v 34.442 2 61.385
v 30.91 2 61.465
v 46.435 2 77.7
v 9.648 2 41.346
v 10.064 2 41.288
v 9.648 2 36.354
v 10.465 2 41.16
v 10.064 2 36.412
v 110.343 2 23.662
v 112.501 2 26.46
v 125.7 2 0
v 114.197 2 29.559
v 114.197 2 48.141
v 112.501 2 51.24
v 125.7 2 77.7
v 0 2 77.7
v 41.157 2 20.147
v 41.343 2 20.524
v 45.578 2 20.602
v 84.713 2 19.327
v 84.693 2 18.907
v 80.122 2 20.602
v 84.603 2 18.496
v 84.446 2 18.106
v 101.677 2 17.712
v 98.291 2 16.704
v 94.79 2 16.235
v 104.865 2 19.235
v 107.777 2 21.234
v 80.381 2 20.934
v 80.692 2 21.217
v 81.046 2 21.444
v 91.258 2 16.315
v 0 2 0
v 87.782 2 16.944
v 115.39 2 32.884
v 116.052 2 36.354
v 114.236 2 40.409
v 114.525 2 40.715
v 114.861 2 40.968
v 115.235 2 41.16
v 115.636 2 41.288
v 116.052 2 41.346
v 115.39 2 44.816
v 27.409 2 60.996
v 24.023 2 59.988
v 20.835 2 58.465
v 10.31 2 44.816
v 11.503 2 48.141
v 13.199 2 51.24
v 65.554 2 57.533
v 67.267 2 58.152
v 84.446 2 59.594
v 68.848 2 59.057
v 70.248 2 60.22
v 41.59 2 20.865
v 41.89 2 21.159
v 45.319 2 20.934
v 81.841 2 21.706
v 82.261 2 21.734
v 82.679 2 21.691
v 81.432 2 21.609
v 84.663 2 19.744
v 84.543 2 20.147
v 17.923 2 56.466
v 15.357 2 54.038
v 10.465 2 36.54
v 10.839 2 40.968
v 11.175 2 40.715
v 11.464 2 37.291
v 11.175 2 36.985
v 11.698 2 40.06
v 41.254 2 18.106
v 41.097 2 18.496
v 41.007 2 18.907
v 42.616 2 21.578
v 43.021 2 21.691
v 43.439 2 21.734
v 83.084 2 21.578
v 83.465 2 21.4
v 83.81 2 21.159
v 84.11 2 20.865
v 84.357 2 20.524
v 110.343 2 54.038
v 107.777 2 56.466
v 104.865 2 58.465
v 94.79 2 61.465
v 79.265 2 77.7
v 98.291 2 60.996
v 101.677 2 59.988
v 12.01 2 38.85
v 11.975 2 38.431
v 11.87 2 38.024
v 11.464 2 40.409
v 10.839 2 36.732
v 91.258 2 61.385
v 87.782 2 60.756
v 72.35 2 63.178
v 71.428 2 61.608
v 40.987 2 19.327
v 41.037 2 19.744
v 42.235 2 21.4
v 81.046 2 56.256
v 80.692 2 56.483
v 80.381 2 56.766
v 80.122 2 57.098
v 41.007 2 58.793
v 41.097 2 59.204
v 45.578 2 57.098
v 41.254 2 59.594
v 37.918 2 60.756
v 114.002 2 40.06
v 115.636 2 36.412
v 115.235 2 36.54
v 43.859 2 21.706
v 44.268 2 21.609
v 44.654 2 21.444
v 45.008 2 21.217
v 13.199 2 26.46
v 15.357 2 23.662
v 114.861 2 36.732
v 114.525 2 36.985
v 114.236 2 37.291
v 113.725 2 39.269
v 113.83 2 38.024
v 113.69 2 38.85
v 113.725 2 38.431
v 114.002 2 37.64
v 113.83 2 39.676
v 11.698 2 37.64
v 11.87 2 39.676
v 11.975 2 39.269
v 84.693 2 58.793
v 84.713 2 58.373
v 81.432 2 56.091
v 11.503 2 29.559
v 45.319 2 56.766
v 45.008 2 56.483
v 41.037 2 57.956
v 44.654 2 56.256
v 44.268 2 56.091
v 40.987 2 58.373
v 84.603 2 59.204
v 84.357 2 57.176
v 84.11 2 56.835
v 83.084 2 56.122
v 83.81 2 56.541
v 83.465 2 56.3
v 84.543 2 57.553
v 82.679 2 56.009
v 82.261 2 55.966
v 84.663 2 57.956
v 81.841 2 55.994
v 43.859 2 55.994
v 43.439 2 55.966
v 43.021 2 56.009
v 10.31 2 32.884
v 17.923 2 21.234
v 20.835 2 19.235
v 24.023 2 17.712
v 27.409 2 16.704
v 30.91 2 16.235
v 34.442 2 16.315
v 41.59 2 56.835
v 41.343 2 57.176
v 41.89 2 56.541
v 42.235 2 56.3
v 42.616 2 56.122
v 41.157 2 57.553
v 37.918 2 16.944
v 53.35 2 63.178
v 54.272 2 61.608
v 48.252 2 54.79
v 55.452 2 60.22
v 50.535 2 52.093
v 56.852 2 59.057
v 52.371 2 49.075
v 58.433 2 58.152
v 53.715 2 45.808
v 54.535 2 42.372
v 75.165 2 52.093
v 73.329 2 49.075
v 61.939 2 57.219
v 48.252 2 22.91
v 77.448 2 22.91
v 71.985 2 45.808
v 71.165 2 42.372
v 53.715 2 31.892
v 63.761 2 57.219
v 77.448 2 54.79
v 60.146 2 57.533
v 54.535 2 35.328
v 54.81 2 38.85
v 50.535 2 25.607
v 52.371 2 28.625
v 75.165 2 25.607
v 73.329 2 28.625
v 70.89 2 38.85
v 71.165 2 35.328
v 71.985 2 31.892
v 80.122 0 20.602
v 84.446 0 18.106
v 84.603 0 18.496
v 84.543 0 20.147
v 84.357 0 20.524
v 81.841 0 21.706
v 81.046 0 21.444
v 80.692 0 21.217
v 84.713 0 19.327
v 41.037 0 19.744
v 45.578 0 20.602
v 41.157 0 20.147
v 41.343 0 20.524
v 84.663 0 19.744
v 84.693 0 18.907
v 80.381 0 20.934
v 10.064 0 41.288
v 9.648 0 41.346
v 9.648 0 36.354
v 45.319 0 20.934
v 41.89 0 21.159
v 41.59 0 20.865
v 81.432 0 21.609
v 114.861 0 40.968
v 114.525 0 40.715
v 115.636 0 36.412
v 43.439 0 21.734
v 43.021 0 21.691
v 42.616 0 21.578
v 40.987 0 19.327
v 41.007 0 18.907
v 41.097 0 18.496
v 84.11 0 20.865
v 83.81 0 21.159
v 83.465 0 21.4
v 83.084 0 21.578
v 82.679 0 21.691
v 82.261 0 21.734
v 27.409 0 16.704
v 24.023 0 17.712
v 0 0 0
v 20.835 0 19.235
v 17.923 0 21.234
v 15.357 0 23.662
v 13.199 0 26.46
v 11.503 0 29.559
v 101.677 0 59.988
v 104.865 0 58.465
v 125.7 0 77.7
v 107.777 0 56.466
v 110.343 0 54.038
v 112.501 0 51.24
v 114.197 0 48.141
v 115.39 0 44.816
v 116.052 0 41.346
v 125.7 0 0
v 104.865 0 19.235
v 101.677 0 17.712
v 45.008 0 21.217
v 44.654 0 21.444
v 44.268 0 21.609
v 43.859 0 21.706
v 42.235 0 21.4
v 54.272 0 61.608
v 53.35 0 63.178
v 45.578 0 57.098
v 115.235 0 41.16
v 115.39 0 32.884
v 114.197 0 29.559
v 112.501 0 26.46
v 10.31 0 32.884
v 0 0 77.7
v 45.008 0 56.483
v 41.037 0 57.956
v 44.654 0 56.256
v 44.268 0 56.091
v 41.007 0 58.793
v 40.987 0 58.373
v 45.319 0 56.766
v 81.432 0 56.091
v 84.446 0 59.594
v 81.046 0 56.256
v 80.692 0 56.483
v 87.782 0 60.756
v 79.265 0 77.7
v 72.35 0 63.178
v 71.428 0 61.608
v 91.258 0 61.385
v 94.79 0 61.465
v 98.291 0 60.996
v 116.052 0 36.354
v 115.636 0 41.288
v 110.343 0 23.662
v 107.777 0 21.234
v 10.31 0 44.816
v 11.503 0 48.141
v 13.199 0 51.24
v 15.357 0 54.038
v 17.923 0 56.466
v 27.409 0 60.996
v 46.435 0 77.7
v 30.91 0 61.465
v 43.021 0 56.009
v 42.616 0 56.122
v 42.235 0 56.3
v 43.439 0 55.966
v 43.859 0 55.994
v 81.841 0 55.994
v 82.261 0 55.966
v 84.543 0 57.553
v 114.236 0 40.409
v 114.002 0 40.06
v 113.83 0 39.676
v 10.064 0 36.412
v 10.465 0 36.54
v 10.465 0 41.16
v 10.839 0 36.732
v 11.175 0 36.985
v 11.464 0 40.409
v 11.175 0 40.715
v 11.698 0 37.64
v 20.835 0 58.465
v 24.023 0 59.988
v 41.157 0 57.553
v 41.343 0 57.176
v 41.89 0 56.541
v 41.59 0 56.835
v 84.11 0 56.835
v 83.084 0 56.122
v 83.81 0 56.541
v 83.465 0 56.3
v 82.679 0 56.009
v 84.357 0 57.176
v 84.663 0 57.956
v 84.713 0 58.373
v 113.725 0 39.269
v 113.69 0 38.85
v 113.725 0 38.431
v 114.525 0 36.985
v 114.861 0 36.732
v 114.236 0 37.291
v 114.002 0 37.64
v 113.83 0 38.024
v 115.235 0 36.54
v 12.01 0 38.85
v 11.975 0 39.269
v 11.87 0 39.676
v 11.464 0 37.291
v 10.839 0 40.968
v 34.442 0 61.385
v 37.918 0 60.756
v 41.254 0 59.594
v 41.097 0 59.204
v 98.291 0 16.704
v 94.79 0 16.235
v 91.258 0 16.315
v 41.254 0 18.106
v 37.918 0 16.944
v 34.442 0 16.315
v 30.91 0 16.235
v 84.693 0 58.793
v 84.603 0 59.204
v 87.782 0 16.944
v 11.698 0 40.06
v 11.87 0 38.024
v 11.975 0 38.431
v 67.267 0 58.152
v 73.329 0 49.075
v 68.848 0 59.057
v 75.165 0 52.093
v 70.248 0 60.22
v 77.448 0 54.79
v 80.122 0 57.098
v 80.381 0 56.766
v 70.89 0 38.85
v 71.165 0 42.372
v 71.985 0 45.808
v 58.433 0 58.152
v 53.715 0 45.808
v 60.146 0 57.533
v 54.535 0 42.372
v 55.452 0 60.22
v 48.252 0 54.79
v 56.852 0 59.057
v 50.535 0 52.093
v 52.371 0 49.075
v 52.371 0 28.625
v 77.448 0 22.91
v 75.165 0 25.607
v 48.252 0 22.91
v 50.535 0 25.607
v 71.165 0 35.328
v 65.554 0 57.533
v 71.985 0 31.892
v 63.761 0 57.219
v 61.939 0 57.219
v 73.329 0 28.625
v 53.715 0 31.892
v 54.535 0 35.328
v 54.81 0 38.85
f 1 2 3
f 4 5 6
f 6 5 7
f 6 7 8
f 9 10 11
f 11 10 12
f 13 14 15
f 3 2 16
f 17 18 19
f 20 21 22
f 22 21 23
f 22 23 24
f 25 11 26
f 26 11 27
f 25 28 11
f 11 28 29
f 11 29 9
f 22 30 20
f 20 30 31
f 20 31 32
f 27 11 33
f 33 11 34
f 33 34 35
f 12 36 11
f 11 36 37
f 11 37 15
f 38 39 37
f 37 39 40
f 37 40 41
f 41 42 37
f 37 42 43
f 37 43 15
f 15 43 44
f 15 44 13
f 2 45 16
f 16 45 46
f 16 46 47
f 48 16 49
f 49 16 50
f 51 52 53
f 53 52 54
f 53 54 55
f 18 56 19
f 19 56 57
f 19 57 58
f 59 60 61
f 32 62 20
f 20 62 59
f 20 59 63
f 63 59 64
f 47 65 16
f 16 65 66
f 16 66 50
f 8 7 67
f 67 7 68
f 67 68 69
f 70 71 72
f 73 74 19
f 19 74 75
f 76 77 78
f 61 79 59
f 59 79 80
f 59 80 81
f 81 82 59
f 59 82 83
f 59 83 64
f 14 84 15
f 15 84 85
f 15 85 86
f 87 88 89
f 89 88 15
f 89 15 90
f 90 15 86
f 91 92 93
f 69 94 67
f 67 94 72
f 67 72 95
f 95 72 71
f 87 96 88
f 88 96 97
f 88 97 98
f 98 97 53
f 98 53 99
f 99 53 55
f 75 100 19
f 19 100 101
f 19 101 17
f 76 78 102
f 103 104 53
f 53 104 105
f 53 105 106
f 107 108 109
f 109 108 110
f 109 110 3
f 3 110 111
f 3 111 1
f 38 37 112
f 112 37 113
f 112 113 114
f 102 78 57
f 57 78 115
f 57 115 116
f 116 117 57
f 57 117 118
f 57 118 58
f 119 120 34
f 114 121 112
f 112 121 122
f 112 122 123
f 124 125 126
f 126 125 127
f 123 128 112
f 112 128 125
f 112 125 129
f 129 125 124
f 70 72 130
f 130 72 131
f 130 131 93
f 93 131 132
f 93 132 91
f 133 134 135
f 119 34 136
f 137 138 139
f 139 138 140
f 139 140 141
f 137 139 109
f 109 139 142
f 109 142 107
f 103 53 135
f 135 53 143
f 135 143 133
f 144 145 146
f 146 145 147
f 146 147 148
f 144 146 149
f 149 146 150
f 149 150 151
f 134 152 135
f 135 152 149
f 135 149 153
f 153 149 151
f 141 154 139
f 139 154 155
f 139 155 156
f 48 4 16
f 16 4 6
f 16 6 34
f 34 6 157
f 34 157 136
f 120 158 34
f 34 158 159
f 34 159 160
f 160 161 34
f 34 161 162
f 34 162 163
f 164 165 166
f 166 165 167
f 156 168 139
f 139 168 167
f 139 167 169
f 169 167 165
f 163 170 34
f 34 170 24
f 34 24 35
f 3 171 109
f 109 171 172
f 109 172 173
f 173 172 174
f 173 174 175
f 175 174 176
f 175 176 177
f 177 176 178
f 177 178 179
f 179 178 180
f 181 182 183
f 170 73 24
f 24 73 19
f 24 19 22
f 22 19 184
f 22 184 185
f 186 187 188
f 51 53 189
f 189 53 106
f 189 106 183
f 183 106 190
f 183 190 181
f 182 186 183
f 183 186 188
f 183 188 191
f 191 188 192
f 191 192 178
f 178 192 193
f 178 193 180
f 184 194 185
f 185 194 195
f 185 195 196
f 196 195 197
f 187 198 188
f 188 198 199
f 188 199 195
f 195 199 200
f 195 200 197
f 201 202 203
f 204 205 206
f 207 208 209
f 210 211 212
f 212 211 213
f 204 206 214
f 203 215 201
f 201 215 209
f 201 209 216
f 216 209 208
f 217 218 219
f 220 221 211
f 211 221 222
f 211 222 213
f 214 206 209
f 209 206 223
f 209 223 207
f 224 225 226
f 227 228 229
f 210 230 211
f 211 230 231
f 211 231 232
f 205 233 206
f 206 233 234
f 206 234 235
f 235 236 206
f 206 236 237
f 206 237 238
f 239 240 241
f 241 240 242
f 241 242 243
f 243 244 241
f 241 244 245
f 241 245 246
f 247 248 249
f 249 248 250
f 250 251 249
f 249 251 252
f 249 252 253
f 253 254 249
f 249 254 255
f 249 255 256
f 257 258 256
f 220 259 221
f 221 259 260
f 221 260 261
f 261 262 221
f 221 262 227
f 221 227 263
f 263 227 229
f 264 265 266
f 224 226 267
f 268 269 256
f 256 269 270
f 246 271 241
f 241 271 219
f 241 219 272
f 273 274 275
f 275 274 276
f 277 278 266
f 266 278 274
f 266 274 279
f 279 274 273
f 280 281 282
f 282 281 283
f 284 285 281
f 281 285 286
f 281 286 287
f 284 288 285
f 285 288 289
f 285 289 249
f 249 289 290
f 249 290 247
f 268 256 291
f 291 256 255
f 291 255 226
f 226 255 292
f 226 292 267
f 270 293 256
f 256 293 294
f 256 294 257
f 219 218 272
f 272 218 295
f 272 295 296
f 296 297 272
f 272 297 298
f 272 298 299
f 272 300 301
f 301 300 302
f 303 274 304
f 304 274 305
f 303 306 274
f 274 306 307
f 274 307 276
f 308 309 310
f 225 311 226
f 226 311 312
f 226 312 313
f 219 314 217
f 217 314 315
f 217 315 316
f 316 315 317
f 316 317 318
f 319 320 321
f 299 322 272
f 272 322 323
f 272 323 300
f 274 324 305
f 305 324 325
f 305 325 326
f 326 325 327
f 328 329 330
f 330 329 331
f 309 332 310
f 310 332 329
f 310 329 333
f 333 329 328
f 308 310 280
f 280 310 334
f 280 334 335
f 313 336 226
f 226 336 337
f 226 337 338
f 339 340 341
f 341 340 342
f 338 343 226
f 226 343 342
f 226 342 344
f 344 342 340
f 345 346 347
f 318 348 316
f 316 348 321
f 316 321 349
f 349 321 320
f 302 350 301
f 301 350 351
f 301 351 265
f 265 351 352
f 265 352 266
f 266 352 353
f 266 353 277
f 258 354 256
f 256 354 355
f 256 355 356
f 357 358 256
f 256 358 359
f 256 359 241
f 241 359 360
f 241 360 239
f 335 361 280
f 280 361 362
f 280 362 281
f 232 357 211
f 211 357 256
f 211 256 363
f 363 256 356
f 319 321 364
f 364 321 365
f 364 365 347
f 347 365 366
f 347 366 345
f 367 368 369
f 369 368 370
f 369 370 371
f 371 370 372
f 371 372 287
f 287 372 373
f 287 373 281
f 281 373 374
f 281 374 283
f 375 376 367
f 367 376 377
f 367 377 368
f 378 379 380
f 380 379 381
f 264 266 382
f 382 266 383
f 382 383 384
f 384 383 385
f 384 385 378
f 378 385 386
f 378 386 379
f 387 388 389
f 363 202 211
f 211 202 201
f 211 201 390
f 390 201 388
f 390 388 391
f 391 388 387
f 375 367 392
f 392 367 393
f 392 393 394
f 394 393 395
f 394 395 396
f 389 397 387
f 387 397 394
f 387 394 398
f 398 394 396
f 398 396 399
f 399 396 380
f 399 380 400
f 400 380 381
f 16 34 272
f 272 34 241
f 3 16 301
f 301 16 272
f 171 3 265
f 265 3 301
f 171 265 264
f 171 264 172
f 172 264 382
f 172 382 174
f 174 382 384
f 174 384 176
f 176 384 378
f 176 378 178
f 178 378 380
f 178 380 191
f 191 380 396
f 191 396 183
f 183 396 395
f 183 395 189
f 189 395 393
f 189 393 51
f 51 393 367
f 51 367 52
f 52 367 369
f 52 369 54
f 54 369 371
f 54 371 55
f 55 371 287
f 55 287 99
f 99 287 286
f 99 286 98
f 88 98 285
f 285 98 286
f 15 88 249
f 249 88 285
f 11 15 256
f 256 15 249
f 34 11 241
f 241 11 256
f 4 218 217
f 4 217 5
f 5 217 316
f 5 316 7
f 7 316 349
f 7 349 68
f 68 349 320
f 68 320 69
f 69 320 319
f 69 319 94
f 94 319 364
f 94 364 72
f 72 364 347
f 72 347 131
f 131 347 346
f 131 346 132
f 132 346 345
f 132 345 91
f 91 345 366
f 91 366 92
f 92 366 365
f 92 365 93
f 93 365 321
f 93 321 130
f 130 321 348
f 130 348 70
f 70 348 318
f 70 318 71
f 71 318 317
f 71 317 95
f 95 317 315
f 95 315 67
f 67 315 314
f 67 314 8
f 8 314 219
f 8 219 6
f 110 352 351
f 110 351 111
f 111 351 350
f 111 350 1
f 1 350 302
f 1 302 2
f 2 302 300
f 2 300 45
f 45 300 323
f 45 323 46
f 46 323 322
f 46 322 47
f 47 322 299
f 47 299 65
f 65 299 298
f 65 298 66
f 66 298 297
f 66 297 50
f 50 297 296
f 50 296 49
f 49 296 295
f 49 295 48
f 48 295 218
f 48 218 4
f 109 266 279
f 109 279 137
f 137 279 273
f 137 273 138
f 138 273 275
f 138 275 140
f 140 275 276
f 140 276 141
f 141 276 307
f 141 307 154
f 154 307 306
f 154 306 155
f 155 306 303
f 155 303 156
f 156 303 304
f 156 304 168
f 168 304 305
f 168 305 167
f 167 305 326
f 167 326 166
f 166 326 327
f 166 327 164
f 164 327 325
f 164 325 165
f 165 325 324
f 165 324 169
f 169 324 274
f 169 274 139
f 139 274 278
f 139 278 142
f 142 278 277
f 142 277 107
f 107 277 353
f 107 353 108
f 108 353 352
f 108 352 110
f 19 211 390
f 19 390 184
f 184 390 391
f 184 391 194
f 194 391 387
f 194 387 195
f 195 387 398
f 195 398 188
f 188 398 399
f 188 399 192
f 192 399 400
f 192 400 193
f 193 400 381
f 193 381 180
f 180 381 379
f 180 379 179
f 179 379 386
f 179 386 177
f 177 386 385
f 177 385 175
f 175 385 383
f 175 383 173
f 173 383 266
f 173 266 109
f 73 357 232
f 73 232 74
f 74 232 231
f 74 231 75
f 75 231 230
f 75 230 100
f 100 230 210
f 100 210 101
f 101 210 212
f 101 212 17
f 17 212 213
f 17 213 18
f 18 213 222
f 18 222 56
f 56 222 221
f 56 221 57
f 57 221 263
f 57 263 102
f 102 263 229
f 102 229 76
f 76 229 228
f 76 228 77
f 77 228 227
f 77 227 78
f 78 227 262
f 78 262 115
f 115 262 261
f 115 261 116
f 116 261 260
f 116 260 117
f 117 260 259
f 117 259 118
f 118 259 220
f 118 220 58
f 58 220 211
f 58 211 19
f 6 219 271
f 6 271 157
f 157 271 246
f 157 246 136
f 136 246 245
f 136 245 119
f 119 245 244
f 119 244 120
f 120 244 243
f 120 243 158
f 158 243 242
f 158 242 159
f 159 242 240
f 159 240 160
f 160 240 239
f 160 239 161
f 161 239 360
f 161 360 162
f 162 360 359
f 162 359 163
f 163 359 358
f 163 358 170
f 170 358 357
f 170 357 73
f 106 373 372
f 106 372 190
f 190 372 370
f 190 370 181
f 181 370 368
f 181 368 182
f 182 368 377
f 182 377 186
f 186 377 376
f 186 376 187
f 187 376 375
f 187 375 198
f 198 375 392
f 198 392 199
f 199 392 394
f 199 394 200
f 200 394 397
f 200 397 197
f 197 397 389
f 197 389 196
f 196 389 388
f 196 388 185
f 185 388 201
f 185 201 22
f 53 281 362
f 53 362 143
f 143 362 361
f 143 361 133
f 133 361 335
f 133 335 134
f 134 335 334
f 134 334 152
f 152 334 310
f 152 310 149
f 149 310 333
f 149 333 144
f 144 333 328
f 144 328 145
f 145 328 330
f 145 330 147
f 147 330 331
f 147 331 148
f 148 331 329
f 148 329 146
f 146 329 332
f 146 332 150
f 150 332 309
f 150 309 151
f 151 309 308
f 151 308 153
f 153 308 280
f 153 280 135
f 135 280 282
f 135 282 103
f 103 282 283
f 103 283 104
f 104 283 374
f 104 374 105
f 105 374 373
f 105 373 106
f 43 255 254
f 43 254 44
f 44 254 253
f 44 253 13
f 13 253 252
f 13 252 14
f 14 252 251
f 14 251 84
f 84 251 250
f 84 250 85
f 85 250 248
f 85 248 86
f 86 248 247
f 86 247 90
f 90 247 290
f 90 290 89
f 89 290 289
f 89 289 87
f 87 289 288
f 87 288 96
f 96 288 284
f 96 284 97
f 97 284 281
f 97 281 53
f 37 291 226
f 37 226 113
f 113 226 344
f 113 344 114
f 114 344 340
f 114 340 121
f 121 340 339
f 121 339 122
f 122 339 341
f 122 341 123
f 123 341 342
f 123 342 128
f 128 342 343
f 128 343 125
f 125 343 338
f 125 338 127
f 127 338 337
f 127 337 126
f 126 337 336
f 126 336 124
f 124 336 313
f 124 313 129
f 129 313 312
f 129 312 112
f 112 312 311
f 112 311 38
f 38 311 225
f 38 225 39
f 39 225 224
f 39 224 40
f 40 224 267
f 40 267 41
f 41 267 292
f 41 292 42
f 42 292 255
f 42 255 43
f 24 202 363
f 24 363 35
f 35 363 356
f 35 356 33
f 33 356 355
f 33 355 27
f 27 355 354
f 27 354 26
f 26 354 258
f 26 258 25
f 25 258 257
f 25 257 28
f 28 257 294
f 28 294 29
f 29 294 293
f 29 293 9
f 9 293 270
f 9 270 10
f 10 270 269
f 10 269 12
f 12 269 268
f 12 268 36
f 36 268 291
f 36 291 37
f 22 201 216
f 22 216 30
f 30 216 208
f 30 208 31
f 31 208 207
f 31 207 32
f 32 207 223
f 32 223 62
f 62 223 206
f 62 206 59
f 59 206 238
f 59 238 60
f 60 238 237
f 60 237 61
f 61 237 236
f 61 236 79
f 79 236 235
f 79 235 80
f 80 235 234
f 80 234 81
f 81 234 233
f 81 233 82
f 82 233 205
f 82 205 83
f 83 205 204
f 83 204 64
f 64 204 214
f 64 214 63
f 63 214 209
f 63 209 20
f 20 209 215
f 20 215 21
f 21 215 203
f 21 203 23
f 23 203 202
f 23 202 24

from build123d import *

# Parameters (mm, degrees)
EXTRUDE_1_DEPTH = 2


with BuildPart() as part:
    # 草图1 → 凸台-拉伸1 (new body)
    with BuildSketch(Plane(origin=(0, 0, 0), x_dir=(1, 0, 0), z_dir=(0, 1, 0))):
        with BuildLine():
            Line((0, 0), (125.7, 0))
            Line((125.7, 0), (125.7, -77.7))
            Line((125.7, -77.7), (79.265, -77.7))
            Line((79.265, -77.7), (72.35, -63.178332735))
            ThreePointArc((72.35, -63.178332735), (62.85, -57.18), (53.35, -63.178332735))
            Line((53.35, -63.178332735), (46.435, -77.7))
            Line((46.435, -77.7), (0, -77.7))
            Line((0, -77.7), (0, 0))
        make_face()
        with BuildLine():
            ThreePointArc((9.647969095, -36.353809997), (20.835, -19.234524604), (41.254251498, -18.105914344))
            ThreePointArc((41.254251498, -18.105914344), (42.235, -21.399588114), (45.577779407, -20.602104347))
            ThreePointArc((45.577779407, -20.602104347), (54.81, -38.85), (45.577779407, -57.097895653))
            ThreePointArc((45.577779407, -57.097895653), (42.235, -56.300411886), (41.254251498, -59.594085656))
            ThreePointArc((41.254251498, -59.594085656), (20.835, -58.465475396), (9.647969095, -41.346190003))
            ThreePointArc((9.647969095, -41.346190003), (12.01, -38.85), (9.647969095, -36.353809997))
        make_face(mode=Mode.SUBTRACT)
        with BuildLine():
            ThreePointArc((80.122220593, -57.097895653), (83.465, -56.300411886), (84.445748502, -59.594085656))
            ThreePointArc((84.445748502, -59.594085656), (104.865, -58.465475396), (116.052030905, -41.346190003))
            ThreePointArc((116.052030905, -41.346190003), (113.69, -38.85), (116.052030905, -36.353809997))
            ThreePointArc((116.052030905, -36.353809997), (104.865, -19.234524604), (84.445748502, -18.105914344))
            ThreePointArc((84.445748502, -18.105914344), (83.465, -21.399588114), (80.122220593, -20.602104347))
            ThreePointArc((80.122220593, -20.602104347), (70.89, -38.85), (80.122220593, -57.097895653))
        make_face(mode=Mode.SUBTRACT)
    extrude(amount=EXTRUDE_1_DEPTH)


solid = part.part
